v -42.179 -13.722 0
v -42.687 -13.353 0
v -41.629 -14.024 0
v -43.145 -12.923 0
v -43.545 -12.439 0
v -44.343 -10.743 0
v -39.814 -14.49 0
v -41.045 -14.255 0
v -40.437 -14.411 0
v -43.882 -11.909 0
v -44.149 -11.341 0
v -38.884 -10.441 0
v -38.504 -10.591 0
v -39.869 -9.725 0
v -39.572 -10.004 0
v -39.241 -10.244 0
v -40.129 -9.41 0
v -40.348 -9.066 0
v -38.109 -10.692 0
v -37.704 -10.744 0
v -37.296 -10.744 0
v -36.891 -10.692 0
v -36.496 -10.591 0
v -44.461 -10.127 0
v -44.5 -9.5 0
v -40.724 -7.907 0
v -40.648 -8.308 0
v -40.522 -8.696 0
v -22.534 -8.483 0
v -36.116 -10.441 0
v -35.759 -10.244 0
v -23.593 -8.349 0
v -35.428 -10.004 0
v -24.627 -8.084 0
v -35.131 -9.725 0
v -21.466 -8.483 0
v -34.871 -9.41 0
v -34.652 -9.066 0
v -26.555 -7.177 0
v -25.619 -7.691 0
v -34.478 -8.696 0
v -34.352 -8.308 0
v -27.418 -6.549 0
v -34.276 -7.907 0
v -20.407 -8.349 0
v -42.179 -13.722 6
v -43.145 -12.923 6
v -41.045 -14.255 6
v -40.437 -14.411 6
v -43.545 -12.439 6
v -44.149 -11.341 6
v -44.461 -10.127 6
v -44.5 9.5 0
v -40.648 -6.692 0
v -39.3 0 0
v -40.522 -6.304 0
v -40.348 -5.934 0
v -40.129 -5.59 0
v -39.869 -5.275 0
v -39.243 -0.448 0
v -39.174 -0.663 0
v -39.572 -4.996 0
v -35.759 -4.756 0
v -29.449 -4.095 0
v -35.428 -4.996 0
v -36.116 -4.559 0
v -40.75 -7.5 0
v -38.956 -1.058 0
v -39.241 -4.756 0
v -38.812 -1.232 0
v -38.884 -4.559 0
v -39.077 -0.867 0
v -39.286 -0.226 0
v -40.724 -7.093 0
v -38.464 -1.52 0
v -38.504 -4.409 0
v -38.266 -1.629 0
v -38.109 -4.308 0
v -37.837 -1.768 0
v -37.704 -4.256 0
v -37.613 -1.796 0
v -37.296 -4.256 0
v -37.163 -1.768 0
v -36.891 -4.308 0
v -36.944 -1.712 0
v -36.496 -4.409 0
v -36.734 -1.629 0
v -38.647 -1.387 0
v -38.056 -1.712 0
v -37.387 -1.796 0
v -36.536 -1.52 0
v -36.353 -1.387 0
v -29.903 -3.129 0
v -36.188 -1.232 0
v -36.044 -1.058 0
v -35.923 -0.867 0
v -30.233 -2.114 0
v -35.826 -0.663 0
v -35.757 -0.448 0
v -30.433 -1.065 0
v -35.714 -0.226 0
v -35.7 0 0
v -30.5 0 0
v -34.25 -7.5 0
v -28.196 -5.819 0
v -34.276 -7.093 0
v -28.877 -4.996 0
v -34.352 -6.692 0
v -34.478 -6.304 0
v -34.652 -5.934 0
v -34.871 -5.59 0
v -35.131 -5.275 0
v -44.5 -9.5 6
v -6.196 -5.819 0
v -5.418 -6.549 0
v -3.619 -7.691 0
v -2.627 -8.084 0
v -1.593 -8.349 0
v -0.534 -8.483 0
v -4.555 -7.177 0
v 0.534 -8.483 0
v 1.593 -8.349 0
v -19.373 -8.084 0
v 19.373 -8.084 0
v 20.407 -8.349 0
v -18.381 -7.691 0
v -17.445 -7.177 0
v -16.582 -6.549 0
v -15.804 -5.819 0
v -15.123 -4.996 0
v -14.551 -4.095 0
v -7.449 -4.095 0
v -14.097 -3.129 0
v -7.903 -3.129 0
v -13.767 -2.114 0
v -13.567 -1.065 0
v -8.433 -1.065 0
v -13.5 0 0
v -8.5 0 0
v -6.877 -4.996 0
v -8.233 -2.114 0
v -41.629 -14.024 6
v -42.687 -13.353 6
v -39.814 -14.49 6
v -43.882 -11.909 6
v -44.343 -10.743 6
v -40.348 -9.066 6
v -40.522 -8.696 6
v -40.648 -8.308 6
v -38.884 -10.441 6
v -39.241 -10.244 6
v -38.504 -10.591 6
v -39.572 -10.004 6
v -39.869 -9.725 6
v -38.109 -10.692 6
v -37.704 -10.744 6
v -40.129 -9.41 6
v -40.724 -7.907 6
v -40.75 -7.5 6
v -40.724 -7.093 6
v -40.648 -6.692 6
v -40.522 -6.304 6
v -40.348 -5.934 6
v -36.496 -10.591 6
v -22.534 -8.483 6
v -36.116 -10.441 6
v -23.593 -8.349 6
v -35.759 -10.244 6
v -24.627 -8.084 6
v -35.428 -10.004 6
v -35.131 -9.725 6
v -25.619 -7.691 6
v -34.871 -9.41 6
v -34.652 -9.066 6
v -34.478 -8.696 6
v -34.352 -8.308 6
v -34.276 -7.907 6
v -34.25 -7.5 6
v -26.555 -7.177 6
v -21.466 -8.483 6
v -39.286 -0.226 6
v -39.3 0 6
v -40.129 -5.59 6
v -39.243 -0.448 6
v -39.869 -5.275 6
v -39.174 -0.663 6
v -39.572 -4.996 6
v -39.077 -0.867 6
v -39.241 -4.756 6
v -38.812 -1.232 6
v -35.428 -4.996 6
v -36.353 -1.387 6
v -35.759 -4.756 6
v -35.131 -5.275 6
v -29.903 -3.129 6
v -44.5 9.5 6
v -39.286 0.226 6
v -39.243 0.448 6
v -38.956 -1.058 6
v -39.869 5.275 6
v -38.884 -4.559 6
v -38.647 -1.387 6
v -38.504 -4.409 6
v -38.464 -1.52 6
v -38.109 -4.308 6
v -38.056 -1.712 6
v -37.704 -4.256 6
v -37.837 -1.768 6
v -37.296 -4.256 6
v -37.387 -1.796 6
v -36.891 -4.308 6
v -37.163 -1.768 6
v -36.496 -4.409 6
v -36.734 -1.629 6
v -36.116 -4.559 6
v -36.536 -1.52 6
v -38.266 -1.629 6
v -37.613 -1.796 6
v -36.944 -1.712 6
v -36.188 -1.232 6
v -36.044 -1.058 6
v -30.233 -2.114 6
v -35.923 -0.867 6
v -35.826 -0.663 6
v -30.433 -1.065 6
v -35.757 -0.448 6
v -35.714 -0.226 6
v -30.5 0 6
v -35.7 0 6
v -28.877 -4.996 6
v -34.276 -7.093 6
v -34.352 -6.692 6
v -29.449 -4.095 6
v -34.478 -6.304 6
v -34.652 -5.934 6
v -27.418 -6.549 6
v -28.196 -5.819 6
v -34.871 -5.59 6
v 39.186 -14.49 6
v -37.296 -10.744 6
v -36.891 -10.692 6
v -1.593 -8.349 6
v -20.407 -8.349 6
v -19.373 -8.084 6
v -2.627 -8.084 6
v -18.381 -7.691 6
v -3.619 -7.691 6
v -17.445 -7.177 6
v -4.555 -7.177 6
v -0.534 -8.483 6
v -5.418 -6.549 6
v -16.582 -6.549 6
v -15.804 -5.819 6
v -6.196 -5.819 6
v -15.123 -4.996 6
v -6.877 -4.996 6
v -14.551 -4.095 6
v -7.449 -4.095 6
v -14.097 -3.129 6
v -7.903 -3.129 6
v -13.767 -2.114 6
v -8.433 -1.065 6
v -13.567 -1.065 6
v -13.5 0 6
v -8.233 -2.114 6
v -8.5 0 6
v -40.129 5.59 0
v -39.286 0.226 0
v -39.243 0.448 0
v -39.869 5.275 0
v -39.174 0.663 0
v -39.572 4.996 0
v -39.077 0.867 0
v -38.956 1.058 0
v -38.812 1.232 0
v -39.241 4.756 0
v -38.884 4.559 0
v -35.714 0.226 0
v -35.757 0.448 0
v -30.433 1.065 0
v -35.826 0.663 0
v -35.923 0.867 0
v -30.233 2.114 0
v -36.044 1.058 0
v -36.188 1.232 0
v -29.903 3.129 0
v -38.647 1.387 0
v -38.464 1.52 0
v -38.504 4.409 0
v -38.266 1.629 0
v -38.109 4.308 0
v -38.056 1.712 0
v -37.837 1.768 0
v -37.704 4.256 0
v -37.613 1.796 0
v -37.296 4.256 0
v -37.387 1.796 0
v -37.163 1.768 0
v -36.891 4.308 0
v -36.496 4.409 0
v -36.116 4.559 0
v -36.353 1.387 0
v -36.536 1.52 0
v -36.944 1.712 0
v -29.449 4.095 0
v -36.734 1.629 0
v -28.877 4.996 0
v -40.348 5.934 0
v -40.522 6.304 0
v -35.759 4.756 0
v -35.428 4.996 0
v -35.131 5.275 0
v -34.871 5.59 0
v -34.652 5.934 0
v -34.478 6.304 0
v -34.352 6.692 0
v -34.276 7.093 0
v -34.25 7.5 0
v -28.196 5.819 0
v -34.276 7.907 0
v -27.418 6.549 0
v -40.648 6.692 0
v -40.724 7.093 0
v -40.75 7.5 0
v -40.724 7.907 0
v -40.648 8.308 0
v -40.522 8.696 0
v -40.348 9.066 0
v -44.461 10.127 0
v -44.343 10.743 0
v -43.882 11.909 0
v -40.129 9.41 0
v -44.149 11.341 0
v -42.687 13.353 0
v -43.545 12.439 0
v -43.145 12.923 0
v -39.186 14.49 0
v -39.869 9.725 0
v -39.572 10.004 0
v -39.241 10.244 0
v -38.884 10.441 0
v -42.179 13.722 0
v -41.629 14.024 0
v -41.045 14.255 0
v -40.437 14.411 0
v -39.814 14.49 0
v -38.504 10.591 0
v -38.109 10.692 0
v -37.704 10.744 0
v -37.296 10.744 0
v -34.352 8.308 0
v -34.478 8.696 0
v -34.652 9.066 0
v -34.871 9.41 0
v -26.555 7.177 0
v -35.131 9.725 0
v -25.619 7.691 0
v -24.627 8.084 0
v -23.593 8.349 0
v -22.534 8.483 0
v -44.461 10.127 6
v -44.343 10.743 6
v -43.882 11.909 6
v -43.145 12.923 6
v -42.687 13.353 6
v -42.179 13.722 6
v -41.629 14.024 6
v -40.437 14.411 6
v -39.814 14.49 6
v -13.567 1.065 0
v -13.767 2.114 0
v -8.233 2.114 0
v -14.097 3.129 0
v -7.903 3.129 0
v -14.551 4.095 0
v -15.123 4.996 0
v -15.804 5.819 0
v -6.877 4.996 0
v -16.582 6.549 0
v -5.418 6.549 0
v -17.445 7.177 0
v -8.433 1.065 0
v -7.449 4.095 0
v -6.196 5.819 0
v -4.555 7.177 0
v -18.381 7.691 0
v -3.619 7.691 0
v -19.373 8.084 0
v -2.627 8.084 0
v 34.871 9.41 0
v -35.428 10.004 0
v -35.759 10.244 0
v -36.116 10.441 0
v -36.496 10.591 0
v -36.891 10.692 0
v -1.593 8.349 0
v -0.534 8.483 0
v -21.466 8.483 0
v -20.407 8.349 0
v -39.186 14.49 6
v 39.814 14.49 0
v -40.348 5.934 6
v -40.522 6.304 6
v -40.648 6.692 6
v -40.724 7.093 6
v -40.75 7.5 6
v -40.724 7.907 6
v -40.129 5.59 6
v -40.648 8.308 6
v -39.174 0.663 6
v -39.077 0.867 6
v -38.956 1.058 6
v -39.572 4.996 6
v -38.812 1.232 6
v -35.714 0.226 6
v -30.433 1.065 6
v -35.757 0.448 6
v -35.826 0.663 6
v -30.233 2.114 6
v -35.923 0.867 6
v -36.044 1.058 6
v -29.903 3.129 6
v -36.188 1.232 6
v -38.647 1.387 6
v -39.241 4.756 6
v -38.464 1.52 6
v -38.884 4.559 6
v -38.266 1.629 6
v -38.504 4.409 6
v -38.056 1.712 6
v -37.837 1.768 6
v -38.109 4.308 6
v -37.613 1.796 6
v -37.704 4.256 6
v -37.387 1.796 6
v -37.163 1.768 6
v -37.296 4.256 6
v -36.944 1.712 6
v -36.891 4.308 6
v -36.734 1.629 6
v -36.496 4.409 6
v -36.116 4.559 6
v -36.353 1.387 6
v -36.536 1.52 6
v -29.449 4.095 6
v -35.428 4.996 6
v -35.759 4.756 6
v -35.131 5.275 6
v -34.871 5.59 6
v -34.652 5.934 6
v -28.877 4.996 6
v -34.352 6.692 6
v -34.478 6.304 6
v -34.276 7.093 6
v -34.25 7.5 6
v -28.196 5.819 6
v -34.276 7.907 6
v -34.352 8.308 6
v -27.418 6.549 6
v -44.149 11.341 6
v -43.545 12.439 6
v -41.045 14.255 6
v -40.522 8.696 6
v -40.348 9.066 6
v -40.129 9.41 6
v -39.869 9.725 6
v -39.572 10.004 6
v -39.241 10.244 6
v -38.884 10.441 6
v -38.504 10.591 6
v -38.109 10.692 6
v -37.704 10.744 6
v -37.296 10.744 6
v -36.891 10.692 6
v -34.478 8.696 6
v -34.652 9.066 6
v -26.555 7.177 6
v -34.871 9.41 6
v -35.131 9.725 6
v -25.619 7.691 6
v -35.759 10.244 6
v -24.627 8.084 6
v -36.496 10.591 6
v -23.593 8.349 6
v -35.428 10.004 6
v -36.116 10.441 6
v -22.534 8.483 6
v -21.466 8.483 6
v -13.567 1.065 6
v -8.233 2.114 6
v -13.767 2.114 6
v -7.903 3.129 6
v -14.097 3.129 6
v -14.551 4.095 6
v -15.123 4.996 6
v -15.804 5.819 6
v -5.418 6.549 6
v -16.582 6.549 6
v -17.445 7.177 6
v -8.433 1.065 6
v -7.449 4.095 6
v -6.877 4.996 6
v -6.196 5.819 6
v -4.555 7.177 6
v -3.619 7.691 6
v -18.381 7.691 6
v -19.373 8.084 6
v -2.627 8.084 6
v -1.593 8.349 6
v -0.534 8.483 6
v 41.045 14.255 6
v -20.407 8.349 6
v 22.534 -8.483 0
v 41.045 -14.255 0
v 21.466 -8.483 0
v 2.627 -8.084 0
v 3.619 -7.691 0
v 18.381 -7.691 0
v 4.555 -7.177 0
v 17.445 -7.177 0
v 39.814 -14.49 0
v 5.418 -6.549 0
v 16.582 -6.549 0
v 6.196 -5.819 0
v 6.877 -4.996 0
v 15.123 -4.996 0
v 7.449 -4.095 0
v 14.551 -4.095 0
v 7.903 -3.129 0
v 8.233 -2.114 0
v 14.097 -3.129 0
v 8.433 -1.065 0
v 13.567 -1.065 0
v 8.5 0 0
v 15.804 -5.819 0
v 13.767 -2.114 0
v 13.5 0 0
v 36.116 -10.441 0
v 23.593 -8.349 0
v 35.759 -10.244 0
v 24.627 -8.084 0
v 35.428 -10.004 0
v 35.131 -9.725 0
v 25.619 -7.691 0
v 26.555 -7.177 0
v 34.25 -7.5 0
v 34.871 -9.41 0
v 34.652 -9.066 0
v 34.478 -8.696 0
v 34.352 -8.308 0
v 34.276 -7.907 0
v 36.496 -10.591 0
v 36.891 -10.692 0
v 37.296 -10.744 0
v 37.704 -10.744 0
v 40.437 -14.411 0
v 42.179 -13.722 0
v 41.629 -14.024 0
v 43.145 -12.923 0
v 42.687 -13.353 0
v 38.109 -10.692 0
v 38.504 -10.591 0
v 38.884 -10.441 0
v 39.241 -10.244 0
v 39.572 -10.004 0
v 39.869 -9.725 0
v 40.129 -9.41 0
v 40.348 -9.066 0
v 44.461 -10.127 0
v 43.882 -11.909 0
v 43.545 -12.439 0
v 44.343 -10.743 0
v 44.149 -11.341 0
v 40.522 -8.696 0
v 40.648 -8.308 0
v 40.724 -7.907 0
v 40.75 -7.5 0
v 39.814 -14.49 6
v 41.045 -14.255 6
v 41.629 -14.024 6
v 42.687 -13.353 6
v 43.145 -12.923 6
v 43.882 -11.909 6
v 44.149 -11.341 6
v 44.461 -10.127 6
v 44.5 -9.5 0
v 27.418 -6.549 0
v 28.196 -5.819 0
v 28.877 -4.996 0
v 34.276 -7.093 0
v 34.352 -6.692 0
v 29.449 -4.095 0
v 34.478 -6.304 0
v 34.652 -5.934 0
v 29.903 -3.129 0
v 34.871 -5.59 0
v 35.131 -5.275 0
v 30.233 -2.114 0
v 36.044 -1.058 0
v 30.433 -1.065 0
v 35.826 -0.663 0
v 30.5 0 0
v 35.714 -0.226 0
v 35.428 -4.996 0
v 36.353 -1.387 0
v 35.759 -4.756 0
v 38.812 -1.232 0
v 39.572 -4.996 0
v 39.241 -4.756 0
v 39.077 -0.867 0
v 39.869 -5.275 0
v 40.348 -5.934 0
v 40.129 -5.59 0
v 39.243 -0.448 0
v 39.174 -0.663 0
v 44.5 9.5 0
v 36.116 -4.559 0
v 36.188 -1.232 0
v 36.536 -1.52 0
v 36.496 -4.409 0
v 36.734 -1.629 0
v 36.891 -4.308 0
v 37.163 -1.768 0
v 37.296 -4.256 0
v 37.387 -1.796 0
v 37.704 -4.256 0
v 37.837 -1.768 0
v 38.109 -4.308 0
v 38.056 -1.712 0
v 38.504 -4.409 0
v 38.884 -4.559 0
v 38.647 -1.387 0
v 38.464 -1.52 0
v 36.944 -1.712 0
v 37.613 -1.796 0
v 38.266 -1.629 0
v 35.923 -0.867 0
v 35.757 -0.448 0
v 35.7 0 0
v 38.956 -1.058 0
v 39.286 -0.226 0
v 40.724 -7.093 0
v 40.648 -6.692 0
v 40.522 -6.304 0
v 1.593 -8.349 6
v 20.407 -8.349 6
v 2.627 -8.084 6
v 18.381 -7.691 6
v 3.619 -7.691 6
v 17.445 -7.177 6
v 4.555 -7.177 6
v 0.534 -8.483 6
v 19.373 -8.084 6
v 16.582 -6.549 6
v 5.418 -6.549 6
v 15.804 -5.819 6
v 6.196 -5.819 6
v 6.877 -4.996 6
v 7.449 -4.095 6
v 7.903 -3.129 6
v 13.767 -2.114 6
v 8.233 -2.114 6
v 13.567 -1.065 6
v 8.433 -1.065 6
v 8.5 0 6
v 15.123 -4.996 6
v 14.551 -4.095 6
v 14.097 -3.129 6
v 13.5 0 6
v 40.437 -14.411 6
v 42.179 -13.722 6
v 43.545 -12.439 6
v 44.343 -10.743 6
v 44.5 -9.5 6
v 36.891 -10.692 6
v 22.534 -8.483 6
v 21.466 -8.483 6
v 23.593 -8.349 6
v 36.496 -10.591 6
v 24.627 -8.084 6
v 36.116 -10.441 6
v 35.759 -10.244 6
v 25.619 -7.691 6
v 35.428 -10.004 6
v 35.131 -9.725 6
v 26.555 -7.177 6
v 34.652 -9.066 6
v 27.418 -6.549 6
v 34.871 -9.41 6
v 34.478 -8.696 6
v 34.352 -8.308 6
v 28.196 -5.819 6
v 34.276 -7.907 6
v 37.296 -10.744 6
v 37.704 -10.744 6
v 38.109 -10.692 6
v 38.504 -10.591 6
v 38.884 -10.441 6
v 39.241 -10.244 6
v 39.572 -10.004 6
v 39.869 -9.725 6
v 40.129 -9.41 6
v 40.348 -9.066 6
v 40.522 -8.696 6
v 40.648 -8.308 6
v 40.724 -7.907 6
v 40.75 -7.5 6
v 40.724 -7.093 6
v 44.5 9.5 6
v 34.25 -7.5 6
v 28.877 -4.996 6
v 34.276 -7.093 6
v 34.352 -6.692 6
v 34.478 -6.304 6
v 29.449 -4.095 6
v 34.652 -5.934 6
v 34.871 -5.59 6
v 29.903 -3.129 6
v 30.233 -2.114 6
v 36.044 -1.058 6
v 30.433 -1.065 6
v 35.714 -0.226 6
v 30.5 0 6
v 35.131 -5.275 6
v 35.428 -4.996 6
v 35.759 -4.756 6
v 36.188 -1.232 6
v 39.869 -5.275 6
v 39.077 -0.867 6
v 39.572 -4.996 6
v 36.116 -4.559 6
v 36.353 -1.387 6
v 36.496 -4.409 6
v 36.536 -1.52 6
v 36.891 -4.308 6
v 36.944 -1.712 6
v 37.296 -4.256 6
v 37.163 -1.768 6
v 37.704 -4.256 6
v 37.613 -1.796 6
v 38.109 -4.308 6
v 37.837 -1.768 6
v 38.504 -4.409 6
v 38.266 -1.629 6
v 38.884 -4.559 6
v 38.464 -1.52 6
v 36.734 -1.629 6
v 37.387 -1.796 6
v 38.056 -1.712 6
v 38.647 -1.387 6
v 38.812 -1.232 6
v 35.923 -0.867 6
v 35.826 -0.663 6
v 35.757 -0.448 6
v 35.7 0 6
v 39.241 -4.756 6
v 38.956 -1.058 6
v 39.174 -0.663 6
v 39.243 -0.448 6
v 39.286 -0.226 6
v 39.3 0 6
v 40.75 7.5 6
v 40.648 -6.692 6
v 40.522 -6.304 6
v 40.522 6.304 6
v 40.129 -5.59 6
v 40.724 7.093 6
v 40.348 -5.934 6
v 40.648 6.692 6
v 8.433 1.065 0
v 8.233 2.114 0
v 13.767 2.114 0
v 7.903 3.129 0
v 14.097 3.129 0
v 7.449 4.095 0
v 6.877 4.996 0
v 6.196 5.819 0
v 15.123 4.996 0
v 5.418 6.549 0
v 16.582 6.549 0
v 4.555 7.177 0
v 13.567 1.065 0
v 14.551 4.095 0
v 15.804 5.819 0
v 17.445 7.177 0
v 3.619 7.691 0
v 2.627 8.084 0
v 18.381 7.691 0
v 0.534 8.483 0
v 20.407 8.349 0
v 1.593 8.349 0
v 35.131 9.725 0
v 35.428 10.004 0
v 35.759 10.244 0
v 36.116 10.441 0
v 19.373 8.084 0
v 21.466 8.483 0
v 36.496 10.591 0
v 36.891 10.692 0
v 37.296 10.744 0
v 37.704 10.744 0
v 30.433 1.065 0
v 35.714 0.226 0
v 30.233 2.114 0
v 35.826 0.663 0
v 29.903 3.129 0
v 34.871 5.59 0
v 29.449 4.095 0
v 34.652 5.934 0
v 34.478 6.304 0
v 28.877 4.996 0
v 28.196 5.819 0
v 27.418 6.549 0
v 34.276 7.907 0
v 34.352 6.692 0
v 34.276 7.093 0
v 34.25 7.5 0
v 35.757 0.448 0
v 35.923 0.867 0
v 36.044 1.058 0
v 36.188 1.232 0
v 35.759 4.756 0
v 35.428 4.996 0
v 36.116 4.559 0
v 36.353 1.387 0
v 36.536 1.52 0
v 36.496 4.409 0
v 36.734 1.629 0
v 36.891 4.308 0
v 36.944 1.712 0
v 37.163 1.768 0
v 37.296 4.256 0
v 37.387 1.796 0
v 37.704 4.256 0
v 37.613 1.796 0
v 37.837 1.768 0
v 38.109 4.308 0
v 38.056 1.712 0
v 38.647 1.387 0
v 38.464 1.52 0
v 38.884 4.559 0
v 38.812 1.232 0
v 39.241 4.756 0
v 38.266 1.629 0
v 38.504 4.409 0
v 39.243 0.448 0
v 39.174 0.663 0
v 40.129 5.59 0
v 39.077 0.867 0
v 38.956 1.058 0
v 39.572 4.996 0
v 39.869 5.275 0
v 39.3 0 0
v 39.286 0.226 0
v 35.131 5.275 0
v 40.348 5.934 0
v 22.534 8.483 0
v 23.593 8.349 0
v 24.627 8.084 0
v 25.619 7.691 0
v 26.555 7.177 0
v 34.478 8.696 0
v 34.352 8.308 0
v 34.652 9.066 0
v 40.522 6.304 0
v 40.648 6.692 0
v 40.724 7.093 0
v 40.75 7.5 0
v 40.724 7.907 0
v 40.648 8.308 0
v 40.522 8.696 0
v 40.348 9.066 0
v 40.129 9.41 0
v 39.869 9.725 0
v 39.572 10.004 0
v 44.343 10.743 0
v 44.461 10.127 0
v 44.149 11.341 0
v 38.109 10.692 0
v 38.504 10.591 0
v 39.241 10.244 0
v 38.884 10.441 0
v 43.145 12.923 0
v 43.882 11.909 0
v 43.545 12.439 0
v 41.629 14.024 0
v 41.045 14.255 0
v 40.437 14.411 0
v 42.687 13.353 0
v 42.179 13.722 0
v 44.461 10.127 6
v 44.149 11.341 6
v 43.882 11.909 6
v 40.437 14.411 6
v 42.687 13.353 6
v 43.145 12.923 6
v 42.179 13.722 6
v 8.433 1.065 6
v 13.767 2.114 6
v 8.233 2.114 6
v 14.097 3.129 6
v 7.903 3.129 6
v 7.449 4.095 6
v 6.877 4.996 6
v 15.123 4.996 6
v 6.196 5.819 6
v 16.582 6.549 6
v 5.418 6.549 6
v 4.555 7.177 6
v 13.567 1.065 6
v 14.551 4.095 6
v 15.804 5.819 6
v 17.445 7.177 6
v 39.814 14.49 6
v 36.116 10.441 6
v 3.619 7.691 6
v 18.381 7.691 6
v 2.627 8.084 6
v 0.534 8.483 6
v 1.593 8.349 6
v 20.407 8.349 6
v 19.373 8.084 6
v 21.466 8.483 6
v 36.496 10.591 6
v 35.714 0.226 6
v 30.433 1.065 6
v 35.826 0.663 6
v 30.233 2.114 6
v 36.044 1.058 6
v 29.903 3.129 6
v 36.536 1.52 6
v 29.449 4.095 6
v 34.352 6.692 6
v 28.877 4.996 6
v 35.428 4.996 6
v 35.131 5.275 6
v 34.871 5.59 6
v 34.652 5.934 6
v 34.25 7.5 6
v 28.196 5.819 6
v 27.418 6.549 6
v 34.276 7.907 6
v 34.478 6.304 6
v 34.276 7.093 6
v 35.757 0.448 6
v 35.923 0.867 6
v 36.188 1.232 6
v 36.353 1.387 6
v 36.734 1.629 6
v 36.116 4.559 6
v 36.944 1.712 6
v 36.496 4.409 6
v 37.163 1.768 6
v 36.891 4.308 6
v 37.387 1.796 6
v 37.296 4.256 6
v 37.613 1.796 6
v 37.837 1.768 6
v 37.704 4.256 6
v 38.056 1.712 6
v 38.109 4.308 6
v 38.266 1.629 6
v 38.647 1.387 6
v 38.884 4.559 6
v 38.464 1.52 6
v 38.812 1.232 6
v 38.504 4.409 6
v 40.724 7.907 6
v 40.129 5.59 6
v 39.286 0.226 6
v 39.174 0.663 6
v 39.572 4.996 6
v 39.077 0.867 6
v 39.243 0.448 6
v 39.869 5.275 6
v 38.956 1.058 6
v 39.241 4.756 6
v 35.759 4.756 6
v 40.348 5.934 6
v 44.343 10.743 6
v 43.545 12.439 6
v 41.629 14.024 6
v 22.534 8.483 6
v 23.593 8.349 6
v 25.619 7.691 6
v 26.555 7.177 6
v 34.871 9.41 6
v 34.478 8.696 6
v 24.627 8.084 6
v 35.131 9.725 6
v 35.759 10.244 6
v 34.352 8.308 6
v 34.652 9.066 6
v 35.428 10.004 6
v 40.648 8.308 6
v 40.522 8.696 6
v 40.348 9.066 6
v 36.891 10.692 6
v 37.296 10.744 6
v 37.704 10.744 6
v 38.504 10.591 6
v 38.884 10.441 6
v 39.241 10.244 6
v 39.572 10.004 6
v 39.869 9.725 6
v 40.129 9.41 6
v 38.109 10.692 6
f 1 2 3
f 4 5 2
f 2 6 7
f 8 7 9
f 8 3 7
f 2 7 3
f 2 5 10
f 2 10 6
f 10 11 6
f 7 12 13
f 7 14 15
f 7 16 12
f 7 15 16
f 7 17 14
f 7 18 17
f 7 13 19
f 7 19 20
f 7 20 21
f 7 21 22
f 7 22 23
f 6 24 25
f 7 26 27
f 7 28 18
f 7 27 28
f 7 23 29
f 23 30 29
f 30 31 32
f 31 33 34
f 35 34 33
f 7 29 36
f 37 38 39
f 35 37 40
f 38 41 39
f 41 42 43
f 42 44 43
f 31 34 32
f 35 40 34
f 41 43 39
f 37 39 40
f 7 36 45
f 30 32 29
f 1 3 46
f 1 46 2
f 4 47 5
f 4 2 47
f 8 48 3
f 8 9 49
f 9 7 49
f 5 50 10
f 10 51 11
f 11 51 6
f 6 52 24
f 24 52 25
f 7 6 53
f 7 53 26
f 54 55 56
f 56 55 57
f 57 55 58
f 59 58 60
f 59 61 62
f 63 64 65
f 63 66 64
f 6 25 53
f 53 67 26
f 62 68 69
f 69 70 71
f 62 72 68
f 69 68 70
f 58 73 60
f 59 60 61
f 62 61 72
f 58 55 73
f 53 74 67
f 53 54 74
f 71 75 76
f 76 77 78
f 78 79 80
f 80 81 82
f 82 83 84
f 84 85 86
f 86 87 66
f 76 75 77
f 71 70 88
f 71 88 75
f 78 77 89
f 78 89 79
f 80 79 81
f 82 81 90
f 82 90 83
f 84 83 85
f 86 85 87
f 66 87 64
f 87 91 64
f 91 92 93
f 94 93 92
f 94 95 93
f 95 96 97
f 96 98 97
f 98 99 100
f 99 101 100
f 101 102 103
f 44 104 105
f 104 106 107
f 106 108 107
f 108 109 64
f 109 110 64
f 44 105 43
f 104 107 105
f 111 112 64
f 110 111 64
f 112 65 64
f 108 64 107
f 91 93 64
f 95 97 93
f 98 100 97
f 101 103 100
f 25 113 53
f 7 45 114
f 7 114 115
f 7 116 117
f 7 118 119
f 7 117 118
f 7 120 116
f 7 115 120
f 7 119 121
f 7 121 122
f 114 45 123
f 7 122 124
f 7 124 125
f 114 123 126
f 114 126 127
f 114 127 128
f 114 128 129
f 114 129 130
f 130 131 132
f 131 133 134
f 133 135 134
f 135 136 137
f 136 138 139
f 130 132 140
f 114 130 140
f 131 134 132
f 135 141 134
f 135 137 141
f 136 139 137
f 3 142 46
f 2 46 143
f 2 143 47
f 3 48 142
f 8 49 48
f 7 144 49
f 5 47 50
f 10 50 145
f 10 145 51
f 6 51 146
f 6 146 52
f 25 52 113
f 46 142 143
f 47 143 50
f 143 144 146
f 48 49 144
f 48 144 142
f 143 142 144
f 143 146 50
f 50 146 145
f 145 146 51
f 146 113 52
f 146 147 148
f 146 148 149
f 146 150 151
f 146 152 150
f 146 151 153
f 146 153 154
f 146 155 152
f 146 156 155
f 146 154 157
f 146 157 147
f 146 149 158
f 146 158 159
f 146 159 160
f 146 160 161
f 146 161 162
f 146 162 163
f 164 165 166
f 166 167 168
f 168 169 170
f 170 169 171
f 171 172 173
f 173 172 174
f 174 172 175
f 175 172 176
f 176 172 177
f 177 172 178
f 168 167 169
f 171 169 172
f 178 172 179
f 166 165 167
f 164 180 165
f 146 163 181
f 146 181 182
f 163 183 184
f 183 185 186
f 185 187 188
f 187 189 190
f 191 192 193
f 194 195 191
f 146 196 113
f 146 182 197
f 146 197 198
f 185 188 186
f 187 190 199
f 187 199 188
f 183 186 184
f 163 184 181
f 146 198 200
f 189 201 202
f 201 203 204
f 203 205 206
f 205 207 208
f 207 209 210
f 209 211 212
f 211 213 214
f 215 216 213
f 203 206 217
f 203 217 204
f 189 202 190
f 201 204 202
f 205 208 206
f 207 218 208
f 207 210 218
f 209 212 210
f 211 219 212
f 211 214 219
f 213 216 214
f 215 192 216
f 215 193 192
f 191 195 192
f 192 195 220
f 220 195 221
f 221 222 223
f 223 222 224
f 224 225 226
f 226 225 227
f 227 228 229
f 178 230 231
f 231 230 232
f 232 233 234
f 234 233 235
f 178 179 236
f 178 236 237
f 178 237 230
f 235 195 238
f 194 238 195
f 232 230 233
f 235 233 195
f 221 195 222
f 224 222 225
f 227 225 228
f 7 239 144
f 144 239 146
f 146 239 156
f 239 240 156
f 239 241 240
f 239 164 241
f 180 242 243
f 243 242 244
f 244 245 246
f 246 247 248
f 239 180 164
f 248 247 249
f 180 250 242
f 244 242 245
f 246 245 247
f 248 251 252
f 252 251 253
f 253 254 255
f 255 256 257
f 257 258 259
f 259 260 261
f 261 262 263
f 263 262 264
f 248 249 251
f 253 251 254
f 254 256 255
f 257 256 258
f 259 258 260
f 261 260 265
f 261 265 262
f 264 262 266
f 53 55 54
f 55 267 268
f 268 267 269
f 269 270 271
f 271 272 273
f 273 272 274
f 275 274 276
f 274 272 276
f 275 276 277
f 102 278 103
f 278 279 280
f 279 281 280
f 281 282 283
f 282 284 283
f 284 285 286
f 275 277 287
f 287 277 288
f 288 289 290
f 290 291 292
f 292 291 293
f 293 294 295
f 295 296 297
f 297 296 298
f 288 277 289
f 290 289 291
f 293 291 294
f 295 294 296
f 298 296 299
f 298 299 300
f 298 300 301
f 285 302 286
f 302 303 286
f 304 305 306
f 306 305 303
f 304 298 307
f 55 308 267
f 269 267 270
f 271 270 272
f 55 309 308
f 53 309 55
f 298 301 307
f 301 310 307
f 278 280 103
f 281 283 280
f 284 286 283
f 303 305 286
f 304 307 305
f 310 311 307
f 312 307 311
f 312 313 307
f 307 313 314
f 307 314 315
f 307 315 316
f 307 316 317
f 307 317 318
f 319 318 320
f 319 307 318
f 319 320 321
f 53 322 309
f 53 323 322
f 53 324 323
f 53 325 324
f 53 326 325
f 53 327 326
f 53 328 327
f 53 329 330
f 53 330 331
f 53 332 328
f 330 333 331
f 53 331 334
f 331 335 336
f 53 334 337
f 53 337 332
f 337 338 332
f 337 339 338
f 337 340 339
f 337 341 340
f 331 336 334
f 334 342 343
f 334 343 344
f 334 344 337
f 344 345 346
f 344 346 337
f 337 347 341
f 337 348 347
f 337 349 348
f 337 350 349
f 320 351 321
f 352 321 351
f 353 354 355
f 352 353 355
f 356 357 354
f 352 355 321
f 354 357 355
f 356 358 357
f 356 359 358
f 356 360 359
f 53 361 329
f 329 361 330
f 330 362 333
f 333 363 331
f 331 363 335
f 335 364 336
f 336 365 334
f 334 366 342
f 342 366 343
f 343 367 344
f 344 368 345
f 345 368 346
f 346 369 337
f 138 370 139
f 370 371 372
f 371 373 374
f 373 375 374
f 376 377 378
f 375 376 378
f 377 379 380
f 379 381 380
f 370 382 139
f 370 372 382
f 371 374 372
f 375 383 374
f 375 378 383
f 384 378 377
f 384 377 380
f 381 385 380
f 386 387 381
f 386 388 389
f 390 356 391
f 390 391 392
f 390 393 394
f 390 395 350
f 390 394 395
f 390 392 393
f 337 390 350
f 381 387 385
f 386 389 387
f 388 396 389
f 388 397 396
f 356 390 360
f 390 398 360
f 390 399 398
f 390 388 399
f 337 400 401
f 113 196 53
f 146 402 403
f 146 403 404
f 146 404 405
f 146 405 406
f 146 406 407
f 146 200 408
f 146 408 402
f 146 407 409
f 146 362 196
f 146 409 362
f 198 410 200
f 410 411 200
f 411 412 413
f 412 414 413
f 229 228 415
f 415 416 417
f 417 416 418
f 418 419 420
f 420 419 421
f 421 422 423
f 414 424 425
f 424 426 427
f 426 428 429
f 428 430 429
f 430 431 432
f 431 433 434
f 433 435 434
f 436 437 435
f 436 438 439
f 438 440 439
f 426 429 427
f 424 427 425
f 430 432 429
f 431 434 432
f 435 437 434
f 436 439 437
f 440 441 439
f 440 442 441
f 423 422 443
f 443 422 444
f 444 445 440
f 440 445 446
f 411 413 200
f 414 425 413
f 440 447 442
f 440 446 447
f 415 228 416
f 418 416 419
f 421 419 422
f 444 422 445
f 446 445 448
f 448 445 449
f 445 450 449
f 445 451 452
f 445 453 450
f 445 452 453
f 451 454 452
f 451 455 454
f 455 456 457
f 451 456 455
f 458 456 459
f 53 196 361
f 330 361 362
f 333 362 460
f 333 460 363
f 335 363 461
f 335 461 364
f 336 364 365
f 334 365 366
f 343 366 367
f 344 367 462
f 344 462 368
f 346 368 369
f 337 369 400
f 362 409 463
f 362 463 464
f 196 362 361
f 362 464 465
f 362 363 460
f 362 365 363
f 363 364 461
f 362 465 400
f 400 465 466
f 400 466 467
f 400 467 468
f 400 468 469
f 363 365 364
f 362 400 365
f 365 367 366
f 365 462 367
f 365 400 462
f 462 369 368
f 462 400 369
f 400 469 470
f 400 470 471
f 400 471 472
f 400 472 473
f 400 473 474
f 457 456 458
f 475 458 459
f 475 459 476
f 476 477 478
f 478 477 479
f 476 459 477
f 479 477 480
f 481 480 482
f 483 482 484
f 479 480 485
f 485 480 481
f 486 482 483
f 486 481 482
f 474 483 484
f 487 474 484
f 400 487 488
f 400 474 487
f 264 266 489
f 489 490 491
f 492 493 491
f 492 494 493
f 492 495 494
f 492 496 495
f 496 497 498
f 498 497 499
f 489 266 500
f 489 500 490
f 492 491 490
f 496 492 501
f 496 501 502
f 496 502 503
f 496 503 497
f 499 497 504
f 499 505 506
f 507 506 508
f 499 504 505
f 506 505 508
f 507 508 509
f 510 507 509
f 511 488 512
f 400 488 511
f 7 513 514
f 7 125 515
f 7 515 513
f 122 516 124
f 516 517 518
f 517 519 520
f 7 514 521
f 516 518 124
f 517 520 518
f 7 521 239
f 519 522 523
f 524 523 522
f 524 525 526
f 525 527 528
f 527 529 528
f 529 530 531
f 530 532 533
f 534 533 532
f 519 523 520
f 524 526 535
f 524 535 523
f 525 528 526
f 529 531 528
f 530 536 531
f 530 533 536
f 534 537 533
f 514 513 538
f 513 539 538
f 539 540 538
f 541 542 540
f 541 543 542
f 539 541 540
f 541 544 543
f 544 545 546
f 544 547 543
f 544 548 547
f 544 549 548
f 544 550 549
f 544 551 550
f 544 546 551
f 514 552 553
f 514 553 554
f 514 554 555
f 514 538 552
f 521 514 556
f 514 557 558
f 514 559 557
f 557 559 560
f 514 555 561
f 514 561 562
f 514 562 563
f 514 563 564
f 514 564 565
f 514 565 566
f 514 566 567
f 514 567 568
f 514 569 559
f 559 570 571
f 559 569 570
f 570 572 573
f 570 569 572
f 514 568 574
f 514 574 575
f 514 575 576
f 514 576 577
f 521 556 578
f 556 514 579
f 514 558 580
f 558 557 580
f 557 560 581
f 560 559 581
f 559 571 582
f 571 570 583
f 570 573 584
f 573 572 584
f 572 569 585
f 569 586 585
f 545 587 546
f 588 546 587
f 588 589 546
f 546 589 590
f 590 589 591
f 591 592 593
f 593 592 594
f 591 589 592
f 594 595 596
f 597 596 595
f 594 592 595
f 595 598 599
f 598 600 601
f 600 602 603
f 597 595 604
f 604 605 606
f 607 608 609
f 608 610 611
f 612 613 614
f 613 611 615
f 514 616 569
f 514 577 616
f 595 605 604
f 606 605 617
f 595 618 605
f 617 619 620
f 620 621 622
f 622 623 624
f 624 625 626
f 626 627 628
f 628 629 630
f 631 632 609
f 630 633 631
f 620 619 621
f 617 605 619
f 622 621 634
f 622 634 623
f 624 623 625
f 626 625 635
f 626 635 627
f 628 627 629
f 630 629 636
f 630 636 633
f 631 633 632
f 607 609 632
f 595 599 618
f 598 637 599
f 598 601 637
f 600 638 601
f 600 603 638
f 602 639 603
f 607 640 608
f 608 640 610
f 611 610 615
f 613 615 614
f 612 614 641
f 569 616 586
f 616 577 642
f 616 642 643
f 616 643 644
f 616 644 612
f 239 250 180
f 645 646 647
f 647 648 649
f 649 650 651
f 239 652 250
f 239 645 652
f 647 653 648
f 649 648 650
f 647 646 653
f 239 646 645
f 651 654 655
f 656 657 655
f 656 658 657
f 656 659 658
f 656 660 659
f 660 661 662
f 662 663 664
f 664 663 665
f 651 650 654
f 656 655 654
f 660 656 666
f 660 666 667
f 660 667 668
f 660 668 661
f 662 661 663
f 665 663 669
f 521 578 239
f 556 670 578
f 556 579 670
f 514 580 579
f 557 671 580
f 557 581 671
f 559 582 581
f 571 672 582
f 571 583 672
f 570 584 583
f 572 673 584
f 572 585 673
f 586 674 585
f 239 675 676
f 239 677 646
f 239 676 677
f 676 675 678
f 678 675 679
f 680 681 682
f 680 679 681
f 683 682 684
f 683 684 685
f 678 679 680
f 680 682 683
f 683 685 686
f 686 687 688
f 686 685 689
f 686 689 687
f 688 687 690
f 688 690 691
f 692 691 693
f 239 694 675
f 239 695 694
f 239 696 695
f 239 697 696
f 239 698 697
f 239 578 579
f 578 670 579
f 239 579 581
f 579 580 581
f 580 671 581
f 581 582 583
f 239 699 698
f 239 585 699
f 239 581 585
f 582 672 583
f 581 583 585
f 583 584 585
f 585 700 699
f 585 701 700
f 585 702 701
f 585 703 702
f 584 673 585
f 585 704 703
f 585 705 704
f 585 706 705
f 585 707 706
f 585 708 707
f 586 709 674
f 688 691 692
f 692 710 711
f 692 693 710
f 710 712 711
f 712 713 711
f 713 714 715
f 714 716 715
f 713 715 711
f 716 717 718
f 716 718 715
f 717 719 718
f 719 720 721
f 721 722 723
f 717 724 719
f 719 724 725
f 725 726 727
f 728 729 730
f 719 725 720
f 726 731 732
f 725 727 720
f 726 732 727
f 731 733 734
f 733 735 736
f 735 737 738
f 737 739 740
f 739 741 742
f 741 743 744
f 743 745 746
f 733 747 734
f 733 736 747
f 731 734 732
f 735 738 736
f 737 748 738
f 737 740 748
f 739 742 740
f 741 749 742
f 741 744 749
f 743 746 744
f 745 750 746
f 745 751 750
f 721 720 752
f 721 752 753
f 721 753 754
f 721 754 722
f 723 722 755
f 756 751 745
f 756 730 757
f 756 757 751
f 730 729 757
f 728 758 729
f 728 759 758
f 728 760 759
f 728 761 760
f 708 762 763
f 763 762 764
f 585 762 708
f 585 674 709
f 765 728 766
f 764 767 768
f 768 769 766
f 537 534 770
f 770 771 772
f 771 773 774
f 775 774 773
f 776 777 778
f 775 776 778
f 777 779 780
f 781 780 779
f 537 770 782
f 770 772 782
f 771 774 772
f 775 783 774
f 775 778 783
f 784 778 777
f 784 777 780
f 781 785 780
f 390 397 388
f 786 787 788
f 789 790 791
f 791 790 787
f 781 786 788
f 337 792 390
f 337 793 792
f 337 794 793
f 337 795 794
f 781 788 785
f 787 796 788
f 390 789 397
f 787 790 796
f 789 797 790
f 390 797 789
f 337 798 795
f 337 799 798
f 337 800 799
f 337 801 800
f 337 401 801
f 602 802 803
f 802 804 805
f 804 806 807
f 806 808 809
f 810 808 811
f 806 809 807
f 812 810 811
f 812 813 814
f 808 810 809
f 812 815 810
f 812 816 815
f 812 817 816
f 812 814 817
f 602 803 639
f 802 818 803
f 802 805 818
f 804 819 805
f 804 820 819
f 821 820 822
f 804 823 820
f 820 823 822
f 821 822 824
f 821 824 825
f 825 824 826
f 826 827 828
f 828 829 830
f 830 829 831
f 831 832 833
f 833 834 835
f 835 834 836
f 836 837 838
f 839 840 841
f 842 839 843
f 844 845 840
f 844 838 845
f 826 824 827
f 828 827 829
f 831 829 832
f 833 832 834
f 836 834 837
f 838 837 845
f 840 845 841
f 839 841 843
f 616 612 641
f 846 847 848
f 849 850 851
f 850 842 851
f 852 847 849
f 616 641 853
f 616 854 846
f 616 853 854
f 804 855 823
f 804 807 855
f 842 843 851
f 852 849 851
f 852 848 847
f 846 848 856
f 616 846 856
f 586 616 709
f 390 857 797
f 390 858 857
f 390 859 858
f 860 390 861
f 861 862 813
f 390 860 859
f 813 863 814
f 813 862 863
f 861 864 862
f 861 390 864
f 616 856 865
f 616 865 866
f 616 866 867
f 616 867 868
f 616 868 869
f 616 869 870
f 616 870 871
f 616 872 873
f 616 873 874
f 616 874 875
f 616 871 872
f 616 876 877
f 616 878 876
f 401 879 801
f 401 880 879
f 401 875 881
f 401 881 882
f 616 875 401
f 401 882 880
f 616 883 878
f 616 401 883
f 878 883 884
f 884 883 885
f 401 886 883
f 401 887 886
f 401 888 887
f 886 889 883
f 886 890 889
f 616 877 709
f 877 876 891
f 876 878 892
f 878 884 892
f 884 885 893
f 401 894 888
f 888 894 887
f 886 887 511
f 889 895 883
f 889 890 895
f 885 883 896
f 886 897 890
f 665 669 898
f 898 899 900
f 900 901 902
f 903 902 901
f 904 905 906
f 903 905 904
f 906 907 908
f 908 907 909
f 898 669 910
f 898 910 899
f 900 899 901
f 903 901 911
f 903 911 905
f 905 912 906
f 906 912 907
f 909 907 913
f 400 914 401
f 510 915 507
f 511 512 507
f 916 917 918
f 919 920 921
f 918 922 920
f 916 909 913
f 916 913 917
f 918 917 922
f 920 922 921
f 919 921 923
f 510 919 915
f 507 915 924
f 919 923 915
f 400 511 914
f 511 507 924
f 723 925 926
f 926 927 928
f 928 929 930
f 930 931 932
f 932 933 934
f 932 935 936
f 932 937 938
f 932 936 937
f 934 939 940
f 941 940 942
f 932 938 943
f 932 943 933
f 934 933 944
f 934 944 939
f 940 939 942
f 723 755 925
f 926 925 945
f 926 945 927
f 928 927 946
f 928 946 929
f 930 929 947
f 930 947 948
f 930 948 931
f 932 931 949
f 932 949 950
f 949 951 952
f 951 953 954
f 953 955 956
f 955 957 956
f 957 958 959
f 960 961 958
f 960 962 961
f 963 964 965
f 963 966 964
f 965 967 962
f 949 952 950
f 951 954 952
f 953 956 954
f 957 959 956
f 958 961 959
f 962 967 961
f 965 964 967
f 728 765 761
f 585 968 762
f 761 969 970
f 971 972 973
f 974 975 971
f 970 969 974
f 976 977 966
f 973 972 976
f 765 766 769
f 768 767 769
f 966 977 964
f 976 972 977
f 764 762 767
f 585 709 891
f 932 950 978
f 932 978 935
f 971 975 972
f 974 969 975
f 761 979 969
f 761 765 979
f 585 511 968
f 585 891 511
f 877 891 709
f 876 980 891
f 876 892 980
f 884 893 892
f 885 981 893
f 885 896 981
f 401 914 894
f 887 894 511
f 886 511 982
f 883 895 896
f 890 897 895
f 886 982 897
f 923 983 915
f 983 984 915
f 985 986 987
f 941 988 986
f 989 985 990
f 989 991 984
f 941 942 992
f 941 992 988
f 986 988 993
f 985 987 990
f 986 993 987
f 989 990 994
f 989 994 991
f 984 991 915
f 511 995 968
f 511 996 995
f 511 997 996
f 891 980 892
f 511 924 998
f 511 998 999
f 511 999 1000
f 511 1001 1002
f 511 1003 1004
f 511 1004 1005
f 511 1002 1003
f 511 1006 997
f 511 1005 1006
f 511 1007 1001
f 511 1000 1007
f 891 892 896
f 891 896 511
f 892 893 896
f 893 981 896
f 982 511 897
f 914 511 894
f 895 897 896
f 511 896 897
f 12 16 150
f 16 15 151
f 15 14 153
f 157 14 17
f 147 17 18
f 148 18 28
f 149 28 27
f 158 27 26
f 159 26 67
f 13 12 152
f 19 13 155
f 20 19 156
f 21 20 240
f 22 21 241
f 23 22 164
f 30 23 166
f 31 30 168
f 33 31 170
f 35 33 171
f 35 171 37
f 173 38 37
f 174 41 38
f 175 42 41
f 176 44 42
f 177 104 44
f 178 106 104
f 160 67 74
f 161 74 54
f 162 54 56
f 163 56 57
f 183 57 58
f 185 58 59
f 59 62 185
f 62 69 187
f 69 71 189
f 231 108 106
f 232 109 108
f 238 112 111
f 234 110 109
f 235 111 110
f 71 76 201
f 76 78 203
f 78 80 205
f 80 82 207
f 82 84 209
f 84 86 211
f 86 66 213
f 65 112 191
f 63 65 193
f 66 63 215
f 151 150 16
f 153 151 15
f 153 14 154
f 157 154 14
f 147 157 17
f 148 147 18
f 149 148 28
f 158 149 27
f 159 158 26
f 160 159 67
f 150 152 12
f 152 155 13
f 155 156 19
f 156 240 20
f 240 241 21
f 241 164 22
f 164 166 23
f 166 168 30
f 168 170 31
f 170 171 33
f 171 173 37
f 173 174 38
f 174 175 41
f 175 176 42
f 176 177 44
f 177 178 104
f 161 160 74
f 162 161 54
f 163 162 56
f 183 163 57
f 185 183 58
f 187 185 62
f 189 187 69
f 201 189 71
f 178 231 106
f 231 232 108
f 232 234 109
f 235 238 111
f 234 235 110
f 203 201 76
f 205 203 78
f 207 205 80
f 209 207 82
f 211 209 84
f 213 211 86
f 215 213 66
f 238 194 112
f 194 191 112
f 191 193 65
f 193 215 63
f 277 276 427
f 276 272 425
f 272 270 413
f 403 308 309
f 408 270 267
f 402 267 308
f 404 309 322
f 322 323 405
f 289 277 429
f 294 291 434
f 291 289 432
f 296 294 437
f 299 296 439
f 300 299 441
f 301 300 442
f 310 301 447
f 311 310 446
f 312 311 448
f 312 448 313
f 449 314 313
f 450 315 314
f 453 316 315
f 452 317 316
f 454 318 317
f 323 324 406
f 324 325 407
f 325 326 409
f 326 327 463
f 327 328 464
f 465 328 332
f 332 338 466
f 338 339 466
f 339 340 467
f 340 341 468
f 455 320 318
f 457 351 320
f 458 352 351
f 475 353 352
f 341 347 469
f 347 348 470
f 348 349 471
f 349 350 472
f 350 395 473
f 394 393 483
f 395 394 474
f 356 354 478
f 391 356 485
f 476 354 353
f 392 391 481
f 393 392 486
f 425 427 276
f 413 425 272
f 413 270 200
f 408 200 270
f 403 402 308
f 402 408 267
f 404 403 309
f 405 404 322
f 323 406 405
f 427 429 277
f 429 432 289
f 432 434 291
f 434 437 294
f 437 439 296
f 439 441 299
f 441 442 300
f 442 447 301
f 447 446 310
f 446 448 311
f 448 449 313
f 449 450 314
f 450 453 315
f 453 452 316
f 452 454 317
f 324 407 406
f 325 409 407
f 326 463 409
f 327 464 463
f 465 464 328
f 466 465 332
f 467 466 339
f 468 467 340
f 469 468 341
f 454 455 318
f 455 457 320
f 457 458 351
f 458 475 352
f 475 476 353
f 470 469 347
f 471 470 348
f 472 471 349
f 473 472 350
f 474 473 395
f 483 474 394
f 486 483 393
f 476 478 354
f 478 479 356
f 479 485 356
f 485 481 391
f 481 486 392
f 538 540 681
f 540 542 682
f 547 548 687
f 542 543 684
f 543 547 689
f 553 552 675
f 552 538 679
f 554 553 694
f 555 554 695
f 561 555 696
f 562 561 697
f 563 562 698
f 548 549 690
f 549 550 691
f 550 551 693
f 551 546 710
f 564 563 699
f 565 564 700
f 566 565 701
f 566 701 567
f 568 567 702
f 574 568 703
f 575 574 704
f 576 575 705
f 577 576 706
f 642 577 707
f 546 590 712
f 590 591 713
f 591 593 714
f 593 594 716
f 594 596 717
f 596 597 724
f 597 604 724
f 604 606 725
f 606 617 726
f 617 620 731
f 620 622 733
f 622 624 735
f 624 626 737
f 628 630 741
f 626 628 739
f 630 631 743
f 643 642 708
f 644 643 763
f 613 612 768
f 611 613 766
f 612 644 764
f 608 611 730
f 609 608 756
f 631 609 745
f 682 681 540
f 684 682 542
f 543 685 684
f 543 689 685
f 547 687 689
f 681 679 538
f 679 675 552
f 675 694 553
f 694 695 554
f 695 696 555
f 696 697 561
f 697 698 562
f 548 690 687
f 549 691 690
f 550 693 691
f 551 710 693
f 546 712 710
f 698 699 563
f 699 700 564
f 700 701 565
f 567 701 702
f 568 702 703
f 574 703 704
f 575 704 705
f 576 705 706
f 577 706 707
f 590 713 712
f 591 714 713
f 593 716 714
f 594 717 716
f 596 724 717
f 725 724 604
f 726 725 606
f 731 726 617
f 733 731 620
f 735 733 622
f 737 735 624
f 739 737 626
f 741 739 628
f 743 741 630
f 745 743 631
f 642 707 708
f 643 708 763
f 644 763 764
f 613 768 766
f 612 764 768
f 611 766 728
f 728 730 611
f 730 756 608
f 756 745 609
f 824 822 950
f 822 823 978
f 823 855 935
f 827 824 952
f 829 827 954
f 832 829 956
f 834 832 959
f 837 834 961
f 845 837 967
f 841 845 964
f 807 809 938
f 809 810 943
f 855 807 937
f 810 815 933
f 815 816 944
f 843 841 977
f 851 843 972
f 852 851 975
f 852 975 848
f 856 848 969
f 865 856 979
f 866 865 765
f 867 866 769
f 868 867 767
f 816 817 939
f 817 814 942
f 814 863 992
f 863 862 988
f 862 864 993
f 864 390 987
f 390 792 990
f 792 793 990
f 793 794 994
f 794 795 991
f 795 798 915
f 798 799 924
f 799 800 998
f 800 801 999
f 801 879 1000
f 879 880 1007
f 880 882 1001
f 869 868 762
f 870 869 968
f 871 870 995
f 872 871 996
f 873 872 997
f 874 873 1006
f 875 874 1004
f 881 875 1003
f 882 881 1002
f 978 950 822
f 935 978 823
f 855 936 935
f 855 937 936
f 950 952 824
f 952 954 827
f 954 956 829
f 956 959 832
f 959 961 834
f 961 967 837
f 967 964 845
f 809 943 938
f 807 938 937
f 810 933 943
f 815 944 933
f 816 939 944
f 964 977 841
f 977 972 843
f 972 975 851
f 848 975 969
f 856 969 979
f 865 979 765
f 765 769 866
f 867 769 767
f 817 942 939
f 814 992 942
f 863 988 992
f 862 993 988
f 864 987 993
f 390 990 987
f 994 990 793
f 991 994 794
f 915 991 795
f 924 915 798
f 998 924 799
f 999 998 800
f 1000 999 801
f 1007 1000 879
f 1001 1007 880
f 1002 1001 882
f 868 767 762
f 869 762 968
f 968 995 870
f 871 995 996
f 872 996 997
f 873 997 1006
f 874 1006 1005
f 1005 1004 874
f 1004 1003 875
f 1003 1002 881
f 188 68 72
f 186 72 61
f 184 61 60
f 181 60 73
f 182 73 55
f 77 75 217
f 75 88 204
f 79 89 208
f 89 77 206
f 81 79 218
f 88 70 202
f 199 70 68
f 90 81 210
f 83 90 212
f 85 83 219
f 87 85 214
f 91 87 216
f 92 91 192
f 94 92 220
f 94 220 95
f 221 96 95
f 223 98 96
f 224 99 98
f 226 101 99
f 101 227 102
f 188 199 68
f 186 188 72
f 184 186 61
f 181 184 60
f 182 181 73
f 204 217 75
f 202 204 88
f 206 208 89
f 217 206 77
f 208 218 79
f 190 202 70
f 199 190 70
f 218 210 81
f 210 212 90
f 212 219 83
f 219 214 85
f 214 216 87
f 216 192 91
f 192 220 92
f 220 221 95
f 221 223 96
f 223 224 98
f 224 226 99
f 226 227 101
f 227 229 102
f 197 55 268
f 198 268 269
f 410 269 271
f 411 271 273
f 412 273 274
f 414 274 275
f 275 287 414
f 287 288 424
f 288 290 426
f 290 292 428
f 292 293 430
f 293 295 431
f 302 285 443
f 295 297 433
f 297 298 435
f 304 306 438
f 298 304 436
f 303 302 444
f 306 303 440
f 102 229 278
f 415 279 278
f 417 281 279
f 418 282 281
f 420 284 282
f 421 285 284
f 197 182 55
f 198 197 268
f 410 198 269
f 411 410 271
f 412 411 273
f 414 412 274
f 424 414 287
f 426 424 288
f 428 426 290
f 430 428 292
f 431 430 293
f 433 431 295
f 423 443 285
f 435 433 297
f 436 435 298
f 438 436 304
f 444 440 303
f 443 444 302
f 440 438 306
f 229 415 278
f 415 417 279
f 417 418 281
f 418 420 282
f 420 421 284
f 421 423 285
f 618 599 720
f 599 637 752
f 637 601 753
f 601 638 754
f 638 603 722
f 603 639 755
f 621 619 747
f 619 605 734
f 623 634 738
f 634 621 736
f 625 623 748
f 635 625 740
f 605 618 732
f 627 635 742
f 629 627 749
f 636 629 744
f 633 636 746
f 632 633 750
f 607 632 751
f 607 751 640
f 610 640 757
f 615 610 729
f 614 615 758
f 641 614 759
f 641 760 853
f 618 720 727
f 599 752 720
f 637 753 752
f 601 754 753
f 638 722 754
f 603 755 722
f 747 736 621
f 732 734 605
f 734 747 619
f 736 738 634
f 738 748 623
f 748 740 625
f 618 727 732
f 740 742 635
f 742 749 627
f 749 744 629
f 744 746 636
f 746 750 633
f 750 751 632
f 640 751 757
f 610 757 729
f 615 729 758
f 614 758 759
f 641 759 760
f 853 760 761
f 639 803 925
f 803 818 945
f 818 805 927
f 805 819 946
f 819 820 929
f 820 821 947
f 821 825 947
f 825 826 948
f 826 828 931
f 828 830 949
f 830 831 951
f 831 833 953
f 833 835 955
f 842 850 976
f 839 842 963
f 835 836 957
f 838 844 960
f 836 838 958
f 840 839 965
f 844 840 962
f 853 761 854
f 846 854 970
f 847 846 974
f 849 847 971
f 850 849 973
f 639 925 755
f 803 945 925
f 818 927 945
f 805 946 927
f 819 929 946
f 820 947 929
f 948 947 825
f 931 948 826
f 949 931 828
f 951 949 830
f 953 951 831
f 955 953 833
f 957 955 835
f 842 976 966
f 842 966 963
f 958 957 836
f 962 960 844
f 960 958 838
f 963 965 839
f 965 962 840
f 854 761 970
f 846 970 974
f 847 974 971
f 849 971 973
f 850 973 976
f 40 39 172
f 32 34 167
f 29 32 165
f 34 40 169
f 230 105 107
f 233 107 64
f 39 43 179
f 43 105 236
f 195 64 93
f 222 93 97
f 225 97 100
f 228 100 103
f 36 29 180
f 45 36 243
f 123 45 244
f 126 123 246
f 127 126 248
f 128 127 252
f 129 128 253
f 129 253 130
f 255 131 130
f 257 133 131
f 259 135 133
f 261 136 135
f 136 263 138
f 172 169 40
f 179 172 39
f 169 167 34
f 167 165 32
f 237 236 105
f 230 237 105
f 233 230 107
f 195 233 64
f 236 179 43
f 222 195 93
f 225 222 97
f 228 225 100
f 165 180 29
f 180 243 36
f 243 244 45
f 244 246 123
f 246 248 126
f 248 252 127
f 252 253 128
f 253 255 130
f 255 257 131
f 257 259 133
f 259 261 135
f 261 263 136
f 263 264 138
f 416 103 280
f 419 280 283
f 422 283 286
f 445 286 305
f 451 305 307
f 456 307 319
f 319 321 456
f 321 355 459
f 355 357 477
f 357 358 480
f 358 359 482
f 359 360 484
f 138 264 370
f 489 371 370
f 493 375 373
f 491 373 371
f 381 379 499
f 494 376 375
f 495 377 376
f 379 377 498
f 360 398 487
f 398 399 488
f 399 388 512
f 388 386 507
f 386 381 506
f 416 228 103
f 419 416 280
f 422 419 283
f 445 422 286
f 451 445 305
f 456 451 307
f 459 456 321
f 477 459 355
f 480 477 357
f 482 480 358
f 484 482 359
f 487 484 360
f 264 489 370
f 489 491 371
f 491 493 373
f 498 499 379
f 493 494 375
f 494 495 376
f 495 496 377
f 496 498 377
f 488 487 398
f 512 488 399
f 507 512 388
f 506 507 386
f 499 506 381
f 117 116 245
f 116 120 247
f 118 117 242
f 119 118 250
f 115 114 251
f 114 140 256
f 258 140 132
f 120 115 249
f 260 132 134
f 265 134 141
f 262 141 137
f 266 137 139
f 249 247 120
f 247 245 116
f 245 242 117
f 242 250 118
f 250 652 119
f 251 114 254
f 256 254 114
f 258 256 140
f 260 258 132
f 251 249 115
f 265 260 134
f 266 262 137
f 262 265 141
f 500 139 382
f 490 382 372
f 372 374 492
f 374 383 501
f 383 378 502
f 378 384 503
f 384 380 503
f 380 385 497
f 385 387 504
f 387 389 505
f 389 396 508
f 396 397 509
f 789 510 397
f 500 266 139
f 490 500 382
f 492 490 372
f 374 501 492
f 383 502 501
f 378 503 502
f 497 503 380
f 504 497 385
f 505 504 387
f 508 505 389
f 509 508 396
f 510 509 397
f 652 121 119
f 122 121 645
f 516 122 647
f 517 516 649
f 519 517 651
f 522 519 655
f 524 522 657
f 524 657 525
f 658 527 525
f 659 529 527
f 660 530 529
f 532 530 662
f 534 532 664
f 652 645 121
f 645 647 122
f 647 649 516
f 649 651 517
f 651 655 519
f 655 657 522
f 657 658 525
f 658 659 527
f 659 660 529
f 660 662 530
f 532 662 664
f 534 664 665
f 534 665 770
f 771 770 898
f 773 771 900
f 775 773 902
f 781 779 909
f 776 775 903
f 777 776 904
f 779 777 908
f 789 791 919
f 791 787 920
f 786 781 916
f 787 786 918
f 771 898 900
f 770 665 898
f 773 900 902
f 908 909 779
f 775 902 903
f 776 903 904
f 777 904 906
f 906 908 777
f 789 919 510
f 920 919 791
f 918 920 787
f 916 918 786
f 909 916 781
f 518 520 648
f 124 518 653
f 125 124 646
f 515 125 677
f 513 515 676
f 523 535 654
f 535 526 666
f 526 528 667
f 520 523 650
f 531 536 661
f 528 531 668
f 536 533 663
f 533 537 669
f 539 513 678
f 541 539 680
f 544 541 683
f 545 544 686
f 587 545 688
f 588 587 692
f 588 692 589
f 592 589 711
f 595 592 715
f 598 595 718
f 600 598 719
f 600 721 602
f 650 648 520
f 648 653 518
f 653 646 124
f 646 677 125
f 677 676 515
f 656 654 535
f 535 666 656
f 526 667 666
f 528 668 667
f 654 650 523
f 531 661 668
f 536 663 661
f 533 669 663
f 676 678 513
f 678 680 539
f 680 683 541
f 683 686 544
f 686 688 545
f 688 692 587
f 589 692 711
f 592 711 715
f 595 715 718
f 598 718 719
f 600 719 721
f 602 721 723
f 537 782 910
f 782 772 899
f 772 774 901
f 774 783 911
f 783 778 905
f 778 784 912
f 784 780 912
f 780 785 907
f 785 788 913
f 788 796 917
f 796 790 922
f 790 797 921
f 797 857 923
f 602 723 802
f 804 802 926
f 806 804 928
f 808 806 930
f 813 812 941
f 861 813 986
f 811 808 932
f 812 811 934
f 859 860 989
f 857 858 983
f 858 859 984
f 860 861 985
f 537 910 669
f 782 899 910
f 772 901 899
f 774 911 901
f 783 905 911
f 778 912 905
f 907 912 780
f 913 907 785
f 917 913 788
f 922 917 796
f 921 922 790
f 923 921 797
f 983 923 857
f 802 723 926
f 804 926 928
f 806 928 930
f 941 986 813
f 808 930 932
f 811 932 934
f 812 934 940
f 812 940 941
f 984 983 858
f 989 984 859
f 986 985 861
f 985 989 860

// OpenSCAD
$fn = 50;

difference() {
	union() {
		hull() {
			translate(v = [-39.5, 9.5, 0]) {
				cylinder(h = 6, r = 5);
			}
			translate(v = [39.5, 9.5, 0]) {
				cylinder(h = 6, r = 5);
			}
			translate(v = [-39.5, -9.5, 0]) {
				cylinder(h = 6, r = 5);
			}
			translate(v = [39.5, -9.5, 0]) {
				cylinder(h = 6, r = 5);
			}
		}
	}
	union() {
		translate(v = [-37.5, -7.5, 0]) {
			cylinder(h = 6, r = 3.25);
		}
		translate(v = [-37.5, 7.5, 0]) {
			cylinder(h = 6, r = 3.25);
		}
		translate(v = [37.5, -7.5, 0]) {
			cylinder(h = 6, r = 3.25);
		}
		translate(v = [37.5, 7.5, 0]) {
			cylinder(h = 6, r = 3.25);
		}
		translate(v = [-37.5, 0.0, 0]) {
			cylinder(h = 6, r = 1.8);
		}
		translate(v = [37.5, 0.0, 0]) {
			cylinder(h = 6, r = 1.8);
		}
		translate(v = [-22.0, 0, 0.0]) {
			cylinder(h = 6, r = 8.5);
		}
		cylinder(h = 6, r = 8.5);
		translate(v = [22.0, 0, 0.0]) {
			cylinder(h = 6, r = 8.5);
		}
	}
}
